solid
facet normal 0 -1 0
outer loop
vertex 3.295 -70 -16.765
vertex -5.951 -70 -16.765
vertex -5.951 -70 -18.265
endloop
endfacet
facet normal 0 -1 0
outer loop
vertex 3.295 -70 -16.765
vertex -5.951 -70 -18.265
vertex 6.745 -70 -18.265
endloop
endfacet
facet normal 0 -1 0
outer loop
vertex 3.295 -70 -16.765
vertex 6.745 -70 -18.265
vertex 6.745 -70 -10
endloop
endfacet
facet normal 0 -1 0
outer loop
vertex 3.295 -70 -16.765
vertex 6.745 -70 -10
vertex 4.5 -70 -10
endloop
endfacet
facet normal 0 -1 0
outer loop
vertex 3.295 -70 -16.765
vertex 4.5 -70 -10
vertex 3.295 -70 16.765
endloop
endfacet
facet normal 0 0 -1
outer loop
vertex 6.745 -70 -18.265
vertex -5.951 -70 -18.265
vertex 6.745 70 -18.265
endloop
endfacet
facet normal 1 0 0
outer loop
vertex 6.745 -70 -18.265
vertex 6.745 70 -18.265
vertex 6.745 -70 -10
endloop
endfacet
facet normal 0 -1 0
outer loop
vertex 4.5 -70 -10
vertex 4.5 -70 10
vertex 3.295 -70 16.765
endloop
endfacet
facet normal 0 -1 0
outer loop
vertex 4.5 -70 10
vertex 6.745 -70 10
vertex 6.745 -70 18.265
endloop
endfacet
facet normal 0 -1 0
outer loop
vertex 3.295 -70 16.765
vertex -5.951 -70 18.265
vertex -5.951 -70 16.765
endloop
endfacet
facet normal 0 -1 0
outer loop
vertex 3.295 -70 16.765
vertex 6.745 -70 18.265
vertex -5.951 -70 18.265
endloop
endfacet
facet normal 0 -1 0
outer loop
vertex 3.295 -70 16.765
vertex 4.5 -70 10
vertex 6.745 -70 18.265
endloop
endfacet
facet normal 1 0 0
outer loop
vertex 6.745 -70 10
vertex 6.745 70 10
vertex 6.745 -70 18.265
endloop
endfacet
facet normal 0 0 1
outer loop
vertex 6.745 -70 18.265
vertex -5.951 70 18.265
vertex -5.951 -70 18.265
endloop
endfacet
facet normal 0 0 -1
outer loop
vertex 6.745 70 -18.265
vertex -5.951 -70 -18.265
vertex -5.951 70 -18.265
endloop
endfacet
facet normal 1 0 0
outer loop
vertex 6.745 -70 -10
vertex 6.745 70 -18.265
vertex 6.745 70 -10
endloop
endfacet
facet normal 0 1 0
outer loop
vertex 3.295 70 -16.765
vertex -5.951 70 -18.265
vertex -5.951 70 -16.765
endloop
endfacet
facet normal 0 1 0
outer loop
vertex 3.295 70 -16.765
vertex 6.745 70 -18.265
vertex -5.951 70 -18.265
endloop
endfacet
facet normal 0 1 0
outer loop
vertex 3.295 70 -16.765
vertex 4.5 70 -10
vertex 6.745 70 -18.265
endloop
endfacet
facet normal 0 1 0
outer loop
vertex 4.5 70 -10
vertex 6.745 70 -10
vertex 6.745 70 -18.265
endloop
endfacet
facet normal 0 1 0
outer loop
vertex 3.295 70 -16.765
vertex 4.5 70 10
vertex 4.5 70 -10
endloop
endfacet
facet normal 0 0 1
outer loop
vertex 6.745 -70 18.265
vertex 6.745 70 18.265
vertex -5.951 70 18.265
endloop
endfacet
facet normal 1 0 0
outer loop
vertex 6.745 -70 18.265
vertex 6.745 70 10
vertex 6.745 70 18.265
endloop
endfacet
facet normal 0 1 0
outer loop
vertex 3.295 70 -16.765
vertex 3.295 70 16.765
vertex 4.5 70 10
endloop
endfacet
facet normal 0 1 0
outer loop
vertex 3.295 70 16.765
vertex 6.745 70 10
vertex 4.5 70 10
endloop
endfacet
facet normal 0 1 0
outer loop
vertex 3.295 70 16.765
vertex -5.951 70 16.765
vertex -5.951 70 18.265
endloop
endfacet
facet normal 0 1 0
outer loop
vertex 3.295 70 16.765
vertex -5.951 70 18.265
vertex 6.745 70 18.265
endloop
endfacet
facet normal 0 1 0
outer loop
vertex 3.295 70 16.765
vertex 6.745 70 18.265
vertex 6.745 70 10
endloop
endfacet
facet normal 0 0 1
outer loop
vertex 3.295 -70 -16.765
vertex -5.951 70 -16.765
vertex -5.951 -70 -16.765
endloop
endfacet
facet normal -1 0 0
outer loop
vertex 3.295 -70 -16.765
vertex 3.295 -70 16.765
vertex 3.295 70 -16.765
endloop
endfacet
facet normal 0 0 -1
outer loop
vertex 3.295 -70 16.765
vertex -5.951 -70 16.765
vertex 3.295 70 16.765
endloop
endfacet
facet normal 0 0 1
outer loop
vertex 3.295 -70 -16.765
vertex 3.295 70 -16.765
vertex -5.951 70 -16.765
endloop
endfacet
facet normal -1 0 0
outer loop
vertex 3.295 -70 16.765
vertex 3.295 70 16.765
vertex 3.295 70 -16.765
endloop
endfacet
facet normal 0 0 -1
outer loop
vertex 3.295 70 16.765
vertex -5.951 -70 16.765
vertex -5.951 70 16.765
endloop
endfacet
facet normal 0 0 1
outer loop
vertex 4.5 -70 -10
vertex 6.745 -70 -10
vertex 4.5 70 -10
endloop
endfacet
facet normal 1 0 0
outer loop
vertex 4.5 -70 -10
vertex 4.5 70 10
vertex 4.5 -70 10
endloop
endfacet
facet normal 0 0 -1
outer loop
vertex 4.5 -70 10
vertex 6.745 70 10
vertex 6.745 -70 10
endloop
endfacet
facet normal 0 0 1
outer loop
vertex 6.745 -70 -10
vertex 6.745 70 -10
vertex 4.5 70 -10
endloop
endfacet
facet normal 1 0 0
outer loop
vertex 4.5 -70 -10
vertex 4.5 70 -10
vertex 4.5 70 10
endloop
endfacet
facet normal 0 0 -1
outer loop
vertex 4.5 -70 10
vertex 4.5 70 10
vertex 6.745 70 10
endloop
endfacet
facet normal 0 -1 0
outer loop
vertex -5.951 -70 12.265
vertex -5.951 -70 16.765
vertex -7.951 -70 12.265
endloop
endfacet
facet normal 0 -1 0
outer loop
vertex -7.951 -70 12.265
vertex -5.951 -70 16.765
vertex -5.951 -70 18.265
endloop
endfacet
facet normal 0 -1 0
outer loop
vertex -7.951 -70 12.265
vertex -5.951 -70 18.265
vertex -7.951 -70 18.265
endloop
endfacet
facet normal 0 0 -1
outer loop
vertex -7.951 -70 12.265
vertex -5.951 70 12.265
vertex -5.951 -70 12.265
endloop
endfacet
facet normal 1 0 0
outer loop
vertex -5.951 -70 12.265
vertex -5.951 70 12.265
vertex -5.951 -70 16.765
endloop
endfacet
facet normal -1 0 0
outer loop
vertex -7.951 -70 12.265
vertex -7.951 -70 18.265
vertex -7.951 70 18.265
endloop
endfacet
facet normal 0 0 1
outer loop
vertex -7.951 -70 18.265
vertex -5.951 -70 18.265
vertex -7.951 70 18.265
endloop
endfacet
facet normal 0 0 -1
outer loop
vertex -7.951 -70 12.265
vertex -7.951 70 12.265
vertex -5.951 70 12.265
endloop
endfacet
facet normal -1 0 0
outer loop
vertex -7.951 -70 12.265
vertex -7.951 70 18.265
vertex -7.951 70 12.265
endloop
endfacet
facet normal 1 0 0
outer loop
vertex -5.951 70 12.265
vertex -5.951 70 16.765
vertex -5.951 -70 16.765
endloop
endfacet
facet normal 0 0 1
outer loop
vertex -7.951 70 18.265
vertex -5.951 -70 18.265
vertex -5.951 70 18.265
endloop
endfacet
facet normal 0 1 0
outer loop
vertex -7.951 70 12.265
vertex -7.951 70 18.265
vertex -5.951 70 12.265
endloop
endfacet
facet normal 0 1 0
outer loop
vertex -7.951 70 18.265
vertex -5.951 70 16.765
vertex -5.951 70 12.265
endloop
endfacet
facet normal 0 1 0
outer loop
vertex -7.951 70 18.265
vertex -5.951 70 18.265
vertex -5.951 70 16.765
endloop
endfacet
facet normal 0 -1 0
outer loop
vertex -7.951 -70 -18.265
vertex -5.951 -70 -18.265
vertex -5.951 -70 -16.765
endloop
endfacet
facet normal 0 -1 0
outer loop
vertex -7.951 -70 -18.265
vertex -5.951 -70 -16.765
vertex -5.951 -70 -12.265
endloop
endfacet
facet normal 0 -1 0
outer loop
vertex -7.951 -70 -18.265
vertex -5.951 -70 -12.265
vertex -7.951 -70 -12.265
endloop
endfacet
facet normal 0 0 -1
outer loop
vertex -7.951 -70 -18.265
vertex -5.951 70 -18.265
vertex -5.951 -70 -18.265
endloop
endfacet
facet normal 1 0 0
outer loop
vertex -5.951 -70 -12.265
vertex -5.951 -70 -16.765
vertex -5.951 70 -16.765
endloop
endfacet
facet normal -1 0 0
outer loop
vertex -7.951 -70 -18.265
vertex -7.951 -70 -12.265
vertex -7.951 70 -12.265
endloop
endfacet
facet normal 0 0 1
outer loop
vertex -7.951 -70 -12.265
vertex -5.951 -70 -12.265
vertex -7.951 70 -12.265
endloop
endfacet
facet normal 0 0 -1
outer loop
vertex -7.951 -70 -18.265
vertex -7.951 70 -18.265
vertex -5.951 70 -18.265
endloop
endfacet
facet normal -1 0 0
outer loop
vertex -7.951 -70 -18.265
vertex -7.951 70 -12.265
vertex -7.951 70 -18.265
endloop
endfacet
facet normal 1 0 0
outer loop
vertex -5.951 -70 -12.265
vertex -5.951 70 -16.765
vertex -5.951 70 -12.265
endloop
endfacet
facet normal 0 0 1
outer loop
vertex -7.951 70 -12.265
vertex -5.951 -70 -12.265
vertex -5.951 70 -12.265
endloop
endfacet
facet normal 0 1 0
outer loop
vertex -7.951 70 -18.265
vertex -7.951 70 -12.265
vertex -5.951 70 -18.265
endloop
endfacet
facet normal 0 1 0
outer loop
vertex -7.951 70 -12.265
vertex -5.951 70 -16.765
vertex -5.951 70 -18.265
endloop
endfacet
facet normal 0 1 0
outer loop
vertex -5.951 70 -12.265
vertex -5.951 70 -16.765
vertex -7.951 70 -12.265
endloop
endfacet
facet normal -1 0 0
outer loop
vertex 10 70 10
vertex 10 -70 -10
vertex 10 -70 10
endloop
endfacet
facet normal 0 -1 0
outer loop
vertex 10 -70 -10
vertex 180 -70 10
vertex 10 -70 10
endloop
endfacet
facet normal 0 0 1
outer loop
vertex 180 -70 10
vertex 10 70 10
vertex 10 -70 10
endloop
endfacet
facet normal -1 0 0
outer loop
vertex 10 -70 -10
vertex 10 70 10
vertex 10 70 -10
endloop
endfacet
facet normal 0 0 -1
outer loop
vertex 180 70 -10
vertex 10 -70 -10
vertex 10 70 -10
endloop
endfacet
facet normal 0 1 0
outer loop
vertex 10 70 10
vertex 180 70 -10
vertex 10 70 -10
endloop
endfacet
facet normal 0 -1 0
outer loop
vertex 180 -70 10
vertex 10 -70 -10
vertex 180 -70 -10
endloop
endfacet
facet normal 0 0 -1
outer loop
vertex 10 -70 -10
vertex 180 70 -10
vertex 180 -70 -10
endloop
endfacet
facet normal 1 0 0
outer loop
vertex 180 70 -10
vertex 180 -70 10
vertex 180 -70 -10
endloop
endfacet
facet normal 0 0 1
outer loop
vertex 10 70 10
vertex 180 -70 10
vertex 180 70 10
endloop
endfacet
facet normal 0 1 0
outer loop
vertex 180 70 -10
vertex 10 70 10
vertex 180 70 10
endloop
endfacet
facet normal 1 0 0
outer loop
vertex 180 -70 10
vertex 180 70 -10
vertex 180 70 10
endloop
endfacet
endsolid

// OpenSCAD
// SPDX-License-Identifier: MIT
$fa = 1;
$fs = 0.4;

tray_hook();
translate([trackpad_tray_length/2 + 10, 0, 0])
   color("blue")tray();

keyboard_tray_hardware_height = 32.53;
keyboard_tray_hardware_length = 9.49;
trackpad_tray_length = 170;
trackpad_tray_width = 140;
trackpad_tray_height = 20;
tray_hook_length = keyboard_tray_hardware_length + 4;
tray_hook_width = trackpad_tray_width;
tray_hook_height = keyboard_tray_hardware_height + 4;

module tray_hook() {
   union() {
      difference() {
         cube([tray_hook_length, tray_hook_width, tray_hook_height], center = true);
         translate([-2, 0, 0])
            cube([keyboard_tray_hardware_length + 1.1, tray_hook_width, keyboard_tray_hardware_height + 1], center = true);
         translate([6.5, 0, 0])
            color("red")cube([4, tray_hook_width, trackpad_tray_height], center=true);
      }
      translate([-6.95 - 0.001, 0, tray_hook_height / 2 - 3])
         cube([2, tray_hook_width, 6], center = true);
      translate([-6.95 - 0.001, 0, -tray_hook_height / 2 + 3])
         cube([2, tray_hook_width, 6], center = true);

   }
}

module tray() {
   cube([trackpad_tray_length, trackpad_tray_width, trackpad_tray_height], center = true);
}
